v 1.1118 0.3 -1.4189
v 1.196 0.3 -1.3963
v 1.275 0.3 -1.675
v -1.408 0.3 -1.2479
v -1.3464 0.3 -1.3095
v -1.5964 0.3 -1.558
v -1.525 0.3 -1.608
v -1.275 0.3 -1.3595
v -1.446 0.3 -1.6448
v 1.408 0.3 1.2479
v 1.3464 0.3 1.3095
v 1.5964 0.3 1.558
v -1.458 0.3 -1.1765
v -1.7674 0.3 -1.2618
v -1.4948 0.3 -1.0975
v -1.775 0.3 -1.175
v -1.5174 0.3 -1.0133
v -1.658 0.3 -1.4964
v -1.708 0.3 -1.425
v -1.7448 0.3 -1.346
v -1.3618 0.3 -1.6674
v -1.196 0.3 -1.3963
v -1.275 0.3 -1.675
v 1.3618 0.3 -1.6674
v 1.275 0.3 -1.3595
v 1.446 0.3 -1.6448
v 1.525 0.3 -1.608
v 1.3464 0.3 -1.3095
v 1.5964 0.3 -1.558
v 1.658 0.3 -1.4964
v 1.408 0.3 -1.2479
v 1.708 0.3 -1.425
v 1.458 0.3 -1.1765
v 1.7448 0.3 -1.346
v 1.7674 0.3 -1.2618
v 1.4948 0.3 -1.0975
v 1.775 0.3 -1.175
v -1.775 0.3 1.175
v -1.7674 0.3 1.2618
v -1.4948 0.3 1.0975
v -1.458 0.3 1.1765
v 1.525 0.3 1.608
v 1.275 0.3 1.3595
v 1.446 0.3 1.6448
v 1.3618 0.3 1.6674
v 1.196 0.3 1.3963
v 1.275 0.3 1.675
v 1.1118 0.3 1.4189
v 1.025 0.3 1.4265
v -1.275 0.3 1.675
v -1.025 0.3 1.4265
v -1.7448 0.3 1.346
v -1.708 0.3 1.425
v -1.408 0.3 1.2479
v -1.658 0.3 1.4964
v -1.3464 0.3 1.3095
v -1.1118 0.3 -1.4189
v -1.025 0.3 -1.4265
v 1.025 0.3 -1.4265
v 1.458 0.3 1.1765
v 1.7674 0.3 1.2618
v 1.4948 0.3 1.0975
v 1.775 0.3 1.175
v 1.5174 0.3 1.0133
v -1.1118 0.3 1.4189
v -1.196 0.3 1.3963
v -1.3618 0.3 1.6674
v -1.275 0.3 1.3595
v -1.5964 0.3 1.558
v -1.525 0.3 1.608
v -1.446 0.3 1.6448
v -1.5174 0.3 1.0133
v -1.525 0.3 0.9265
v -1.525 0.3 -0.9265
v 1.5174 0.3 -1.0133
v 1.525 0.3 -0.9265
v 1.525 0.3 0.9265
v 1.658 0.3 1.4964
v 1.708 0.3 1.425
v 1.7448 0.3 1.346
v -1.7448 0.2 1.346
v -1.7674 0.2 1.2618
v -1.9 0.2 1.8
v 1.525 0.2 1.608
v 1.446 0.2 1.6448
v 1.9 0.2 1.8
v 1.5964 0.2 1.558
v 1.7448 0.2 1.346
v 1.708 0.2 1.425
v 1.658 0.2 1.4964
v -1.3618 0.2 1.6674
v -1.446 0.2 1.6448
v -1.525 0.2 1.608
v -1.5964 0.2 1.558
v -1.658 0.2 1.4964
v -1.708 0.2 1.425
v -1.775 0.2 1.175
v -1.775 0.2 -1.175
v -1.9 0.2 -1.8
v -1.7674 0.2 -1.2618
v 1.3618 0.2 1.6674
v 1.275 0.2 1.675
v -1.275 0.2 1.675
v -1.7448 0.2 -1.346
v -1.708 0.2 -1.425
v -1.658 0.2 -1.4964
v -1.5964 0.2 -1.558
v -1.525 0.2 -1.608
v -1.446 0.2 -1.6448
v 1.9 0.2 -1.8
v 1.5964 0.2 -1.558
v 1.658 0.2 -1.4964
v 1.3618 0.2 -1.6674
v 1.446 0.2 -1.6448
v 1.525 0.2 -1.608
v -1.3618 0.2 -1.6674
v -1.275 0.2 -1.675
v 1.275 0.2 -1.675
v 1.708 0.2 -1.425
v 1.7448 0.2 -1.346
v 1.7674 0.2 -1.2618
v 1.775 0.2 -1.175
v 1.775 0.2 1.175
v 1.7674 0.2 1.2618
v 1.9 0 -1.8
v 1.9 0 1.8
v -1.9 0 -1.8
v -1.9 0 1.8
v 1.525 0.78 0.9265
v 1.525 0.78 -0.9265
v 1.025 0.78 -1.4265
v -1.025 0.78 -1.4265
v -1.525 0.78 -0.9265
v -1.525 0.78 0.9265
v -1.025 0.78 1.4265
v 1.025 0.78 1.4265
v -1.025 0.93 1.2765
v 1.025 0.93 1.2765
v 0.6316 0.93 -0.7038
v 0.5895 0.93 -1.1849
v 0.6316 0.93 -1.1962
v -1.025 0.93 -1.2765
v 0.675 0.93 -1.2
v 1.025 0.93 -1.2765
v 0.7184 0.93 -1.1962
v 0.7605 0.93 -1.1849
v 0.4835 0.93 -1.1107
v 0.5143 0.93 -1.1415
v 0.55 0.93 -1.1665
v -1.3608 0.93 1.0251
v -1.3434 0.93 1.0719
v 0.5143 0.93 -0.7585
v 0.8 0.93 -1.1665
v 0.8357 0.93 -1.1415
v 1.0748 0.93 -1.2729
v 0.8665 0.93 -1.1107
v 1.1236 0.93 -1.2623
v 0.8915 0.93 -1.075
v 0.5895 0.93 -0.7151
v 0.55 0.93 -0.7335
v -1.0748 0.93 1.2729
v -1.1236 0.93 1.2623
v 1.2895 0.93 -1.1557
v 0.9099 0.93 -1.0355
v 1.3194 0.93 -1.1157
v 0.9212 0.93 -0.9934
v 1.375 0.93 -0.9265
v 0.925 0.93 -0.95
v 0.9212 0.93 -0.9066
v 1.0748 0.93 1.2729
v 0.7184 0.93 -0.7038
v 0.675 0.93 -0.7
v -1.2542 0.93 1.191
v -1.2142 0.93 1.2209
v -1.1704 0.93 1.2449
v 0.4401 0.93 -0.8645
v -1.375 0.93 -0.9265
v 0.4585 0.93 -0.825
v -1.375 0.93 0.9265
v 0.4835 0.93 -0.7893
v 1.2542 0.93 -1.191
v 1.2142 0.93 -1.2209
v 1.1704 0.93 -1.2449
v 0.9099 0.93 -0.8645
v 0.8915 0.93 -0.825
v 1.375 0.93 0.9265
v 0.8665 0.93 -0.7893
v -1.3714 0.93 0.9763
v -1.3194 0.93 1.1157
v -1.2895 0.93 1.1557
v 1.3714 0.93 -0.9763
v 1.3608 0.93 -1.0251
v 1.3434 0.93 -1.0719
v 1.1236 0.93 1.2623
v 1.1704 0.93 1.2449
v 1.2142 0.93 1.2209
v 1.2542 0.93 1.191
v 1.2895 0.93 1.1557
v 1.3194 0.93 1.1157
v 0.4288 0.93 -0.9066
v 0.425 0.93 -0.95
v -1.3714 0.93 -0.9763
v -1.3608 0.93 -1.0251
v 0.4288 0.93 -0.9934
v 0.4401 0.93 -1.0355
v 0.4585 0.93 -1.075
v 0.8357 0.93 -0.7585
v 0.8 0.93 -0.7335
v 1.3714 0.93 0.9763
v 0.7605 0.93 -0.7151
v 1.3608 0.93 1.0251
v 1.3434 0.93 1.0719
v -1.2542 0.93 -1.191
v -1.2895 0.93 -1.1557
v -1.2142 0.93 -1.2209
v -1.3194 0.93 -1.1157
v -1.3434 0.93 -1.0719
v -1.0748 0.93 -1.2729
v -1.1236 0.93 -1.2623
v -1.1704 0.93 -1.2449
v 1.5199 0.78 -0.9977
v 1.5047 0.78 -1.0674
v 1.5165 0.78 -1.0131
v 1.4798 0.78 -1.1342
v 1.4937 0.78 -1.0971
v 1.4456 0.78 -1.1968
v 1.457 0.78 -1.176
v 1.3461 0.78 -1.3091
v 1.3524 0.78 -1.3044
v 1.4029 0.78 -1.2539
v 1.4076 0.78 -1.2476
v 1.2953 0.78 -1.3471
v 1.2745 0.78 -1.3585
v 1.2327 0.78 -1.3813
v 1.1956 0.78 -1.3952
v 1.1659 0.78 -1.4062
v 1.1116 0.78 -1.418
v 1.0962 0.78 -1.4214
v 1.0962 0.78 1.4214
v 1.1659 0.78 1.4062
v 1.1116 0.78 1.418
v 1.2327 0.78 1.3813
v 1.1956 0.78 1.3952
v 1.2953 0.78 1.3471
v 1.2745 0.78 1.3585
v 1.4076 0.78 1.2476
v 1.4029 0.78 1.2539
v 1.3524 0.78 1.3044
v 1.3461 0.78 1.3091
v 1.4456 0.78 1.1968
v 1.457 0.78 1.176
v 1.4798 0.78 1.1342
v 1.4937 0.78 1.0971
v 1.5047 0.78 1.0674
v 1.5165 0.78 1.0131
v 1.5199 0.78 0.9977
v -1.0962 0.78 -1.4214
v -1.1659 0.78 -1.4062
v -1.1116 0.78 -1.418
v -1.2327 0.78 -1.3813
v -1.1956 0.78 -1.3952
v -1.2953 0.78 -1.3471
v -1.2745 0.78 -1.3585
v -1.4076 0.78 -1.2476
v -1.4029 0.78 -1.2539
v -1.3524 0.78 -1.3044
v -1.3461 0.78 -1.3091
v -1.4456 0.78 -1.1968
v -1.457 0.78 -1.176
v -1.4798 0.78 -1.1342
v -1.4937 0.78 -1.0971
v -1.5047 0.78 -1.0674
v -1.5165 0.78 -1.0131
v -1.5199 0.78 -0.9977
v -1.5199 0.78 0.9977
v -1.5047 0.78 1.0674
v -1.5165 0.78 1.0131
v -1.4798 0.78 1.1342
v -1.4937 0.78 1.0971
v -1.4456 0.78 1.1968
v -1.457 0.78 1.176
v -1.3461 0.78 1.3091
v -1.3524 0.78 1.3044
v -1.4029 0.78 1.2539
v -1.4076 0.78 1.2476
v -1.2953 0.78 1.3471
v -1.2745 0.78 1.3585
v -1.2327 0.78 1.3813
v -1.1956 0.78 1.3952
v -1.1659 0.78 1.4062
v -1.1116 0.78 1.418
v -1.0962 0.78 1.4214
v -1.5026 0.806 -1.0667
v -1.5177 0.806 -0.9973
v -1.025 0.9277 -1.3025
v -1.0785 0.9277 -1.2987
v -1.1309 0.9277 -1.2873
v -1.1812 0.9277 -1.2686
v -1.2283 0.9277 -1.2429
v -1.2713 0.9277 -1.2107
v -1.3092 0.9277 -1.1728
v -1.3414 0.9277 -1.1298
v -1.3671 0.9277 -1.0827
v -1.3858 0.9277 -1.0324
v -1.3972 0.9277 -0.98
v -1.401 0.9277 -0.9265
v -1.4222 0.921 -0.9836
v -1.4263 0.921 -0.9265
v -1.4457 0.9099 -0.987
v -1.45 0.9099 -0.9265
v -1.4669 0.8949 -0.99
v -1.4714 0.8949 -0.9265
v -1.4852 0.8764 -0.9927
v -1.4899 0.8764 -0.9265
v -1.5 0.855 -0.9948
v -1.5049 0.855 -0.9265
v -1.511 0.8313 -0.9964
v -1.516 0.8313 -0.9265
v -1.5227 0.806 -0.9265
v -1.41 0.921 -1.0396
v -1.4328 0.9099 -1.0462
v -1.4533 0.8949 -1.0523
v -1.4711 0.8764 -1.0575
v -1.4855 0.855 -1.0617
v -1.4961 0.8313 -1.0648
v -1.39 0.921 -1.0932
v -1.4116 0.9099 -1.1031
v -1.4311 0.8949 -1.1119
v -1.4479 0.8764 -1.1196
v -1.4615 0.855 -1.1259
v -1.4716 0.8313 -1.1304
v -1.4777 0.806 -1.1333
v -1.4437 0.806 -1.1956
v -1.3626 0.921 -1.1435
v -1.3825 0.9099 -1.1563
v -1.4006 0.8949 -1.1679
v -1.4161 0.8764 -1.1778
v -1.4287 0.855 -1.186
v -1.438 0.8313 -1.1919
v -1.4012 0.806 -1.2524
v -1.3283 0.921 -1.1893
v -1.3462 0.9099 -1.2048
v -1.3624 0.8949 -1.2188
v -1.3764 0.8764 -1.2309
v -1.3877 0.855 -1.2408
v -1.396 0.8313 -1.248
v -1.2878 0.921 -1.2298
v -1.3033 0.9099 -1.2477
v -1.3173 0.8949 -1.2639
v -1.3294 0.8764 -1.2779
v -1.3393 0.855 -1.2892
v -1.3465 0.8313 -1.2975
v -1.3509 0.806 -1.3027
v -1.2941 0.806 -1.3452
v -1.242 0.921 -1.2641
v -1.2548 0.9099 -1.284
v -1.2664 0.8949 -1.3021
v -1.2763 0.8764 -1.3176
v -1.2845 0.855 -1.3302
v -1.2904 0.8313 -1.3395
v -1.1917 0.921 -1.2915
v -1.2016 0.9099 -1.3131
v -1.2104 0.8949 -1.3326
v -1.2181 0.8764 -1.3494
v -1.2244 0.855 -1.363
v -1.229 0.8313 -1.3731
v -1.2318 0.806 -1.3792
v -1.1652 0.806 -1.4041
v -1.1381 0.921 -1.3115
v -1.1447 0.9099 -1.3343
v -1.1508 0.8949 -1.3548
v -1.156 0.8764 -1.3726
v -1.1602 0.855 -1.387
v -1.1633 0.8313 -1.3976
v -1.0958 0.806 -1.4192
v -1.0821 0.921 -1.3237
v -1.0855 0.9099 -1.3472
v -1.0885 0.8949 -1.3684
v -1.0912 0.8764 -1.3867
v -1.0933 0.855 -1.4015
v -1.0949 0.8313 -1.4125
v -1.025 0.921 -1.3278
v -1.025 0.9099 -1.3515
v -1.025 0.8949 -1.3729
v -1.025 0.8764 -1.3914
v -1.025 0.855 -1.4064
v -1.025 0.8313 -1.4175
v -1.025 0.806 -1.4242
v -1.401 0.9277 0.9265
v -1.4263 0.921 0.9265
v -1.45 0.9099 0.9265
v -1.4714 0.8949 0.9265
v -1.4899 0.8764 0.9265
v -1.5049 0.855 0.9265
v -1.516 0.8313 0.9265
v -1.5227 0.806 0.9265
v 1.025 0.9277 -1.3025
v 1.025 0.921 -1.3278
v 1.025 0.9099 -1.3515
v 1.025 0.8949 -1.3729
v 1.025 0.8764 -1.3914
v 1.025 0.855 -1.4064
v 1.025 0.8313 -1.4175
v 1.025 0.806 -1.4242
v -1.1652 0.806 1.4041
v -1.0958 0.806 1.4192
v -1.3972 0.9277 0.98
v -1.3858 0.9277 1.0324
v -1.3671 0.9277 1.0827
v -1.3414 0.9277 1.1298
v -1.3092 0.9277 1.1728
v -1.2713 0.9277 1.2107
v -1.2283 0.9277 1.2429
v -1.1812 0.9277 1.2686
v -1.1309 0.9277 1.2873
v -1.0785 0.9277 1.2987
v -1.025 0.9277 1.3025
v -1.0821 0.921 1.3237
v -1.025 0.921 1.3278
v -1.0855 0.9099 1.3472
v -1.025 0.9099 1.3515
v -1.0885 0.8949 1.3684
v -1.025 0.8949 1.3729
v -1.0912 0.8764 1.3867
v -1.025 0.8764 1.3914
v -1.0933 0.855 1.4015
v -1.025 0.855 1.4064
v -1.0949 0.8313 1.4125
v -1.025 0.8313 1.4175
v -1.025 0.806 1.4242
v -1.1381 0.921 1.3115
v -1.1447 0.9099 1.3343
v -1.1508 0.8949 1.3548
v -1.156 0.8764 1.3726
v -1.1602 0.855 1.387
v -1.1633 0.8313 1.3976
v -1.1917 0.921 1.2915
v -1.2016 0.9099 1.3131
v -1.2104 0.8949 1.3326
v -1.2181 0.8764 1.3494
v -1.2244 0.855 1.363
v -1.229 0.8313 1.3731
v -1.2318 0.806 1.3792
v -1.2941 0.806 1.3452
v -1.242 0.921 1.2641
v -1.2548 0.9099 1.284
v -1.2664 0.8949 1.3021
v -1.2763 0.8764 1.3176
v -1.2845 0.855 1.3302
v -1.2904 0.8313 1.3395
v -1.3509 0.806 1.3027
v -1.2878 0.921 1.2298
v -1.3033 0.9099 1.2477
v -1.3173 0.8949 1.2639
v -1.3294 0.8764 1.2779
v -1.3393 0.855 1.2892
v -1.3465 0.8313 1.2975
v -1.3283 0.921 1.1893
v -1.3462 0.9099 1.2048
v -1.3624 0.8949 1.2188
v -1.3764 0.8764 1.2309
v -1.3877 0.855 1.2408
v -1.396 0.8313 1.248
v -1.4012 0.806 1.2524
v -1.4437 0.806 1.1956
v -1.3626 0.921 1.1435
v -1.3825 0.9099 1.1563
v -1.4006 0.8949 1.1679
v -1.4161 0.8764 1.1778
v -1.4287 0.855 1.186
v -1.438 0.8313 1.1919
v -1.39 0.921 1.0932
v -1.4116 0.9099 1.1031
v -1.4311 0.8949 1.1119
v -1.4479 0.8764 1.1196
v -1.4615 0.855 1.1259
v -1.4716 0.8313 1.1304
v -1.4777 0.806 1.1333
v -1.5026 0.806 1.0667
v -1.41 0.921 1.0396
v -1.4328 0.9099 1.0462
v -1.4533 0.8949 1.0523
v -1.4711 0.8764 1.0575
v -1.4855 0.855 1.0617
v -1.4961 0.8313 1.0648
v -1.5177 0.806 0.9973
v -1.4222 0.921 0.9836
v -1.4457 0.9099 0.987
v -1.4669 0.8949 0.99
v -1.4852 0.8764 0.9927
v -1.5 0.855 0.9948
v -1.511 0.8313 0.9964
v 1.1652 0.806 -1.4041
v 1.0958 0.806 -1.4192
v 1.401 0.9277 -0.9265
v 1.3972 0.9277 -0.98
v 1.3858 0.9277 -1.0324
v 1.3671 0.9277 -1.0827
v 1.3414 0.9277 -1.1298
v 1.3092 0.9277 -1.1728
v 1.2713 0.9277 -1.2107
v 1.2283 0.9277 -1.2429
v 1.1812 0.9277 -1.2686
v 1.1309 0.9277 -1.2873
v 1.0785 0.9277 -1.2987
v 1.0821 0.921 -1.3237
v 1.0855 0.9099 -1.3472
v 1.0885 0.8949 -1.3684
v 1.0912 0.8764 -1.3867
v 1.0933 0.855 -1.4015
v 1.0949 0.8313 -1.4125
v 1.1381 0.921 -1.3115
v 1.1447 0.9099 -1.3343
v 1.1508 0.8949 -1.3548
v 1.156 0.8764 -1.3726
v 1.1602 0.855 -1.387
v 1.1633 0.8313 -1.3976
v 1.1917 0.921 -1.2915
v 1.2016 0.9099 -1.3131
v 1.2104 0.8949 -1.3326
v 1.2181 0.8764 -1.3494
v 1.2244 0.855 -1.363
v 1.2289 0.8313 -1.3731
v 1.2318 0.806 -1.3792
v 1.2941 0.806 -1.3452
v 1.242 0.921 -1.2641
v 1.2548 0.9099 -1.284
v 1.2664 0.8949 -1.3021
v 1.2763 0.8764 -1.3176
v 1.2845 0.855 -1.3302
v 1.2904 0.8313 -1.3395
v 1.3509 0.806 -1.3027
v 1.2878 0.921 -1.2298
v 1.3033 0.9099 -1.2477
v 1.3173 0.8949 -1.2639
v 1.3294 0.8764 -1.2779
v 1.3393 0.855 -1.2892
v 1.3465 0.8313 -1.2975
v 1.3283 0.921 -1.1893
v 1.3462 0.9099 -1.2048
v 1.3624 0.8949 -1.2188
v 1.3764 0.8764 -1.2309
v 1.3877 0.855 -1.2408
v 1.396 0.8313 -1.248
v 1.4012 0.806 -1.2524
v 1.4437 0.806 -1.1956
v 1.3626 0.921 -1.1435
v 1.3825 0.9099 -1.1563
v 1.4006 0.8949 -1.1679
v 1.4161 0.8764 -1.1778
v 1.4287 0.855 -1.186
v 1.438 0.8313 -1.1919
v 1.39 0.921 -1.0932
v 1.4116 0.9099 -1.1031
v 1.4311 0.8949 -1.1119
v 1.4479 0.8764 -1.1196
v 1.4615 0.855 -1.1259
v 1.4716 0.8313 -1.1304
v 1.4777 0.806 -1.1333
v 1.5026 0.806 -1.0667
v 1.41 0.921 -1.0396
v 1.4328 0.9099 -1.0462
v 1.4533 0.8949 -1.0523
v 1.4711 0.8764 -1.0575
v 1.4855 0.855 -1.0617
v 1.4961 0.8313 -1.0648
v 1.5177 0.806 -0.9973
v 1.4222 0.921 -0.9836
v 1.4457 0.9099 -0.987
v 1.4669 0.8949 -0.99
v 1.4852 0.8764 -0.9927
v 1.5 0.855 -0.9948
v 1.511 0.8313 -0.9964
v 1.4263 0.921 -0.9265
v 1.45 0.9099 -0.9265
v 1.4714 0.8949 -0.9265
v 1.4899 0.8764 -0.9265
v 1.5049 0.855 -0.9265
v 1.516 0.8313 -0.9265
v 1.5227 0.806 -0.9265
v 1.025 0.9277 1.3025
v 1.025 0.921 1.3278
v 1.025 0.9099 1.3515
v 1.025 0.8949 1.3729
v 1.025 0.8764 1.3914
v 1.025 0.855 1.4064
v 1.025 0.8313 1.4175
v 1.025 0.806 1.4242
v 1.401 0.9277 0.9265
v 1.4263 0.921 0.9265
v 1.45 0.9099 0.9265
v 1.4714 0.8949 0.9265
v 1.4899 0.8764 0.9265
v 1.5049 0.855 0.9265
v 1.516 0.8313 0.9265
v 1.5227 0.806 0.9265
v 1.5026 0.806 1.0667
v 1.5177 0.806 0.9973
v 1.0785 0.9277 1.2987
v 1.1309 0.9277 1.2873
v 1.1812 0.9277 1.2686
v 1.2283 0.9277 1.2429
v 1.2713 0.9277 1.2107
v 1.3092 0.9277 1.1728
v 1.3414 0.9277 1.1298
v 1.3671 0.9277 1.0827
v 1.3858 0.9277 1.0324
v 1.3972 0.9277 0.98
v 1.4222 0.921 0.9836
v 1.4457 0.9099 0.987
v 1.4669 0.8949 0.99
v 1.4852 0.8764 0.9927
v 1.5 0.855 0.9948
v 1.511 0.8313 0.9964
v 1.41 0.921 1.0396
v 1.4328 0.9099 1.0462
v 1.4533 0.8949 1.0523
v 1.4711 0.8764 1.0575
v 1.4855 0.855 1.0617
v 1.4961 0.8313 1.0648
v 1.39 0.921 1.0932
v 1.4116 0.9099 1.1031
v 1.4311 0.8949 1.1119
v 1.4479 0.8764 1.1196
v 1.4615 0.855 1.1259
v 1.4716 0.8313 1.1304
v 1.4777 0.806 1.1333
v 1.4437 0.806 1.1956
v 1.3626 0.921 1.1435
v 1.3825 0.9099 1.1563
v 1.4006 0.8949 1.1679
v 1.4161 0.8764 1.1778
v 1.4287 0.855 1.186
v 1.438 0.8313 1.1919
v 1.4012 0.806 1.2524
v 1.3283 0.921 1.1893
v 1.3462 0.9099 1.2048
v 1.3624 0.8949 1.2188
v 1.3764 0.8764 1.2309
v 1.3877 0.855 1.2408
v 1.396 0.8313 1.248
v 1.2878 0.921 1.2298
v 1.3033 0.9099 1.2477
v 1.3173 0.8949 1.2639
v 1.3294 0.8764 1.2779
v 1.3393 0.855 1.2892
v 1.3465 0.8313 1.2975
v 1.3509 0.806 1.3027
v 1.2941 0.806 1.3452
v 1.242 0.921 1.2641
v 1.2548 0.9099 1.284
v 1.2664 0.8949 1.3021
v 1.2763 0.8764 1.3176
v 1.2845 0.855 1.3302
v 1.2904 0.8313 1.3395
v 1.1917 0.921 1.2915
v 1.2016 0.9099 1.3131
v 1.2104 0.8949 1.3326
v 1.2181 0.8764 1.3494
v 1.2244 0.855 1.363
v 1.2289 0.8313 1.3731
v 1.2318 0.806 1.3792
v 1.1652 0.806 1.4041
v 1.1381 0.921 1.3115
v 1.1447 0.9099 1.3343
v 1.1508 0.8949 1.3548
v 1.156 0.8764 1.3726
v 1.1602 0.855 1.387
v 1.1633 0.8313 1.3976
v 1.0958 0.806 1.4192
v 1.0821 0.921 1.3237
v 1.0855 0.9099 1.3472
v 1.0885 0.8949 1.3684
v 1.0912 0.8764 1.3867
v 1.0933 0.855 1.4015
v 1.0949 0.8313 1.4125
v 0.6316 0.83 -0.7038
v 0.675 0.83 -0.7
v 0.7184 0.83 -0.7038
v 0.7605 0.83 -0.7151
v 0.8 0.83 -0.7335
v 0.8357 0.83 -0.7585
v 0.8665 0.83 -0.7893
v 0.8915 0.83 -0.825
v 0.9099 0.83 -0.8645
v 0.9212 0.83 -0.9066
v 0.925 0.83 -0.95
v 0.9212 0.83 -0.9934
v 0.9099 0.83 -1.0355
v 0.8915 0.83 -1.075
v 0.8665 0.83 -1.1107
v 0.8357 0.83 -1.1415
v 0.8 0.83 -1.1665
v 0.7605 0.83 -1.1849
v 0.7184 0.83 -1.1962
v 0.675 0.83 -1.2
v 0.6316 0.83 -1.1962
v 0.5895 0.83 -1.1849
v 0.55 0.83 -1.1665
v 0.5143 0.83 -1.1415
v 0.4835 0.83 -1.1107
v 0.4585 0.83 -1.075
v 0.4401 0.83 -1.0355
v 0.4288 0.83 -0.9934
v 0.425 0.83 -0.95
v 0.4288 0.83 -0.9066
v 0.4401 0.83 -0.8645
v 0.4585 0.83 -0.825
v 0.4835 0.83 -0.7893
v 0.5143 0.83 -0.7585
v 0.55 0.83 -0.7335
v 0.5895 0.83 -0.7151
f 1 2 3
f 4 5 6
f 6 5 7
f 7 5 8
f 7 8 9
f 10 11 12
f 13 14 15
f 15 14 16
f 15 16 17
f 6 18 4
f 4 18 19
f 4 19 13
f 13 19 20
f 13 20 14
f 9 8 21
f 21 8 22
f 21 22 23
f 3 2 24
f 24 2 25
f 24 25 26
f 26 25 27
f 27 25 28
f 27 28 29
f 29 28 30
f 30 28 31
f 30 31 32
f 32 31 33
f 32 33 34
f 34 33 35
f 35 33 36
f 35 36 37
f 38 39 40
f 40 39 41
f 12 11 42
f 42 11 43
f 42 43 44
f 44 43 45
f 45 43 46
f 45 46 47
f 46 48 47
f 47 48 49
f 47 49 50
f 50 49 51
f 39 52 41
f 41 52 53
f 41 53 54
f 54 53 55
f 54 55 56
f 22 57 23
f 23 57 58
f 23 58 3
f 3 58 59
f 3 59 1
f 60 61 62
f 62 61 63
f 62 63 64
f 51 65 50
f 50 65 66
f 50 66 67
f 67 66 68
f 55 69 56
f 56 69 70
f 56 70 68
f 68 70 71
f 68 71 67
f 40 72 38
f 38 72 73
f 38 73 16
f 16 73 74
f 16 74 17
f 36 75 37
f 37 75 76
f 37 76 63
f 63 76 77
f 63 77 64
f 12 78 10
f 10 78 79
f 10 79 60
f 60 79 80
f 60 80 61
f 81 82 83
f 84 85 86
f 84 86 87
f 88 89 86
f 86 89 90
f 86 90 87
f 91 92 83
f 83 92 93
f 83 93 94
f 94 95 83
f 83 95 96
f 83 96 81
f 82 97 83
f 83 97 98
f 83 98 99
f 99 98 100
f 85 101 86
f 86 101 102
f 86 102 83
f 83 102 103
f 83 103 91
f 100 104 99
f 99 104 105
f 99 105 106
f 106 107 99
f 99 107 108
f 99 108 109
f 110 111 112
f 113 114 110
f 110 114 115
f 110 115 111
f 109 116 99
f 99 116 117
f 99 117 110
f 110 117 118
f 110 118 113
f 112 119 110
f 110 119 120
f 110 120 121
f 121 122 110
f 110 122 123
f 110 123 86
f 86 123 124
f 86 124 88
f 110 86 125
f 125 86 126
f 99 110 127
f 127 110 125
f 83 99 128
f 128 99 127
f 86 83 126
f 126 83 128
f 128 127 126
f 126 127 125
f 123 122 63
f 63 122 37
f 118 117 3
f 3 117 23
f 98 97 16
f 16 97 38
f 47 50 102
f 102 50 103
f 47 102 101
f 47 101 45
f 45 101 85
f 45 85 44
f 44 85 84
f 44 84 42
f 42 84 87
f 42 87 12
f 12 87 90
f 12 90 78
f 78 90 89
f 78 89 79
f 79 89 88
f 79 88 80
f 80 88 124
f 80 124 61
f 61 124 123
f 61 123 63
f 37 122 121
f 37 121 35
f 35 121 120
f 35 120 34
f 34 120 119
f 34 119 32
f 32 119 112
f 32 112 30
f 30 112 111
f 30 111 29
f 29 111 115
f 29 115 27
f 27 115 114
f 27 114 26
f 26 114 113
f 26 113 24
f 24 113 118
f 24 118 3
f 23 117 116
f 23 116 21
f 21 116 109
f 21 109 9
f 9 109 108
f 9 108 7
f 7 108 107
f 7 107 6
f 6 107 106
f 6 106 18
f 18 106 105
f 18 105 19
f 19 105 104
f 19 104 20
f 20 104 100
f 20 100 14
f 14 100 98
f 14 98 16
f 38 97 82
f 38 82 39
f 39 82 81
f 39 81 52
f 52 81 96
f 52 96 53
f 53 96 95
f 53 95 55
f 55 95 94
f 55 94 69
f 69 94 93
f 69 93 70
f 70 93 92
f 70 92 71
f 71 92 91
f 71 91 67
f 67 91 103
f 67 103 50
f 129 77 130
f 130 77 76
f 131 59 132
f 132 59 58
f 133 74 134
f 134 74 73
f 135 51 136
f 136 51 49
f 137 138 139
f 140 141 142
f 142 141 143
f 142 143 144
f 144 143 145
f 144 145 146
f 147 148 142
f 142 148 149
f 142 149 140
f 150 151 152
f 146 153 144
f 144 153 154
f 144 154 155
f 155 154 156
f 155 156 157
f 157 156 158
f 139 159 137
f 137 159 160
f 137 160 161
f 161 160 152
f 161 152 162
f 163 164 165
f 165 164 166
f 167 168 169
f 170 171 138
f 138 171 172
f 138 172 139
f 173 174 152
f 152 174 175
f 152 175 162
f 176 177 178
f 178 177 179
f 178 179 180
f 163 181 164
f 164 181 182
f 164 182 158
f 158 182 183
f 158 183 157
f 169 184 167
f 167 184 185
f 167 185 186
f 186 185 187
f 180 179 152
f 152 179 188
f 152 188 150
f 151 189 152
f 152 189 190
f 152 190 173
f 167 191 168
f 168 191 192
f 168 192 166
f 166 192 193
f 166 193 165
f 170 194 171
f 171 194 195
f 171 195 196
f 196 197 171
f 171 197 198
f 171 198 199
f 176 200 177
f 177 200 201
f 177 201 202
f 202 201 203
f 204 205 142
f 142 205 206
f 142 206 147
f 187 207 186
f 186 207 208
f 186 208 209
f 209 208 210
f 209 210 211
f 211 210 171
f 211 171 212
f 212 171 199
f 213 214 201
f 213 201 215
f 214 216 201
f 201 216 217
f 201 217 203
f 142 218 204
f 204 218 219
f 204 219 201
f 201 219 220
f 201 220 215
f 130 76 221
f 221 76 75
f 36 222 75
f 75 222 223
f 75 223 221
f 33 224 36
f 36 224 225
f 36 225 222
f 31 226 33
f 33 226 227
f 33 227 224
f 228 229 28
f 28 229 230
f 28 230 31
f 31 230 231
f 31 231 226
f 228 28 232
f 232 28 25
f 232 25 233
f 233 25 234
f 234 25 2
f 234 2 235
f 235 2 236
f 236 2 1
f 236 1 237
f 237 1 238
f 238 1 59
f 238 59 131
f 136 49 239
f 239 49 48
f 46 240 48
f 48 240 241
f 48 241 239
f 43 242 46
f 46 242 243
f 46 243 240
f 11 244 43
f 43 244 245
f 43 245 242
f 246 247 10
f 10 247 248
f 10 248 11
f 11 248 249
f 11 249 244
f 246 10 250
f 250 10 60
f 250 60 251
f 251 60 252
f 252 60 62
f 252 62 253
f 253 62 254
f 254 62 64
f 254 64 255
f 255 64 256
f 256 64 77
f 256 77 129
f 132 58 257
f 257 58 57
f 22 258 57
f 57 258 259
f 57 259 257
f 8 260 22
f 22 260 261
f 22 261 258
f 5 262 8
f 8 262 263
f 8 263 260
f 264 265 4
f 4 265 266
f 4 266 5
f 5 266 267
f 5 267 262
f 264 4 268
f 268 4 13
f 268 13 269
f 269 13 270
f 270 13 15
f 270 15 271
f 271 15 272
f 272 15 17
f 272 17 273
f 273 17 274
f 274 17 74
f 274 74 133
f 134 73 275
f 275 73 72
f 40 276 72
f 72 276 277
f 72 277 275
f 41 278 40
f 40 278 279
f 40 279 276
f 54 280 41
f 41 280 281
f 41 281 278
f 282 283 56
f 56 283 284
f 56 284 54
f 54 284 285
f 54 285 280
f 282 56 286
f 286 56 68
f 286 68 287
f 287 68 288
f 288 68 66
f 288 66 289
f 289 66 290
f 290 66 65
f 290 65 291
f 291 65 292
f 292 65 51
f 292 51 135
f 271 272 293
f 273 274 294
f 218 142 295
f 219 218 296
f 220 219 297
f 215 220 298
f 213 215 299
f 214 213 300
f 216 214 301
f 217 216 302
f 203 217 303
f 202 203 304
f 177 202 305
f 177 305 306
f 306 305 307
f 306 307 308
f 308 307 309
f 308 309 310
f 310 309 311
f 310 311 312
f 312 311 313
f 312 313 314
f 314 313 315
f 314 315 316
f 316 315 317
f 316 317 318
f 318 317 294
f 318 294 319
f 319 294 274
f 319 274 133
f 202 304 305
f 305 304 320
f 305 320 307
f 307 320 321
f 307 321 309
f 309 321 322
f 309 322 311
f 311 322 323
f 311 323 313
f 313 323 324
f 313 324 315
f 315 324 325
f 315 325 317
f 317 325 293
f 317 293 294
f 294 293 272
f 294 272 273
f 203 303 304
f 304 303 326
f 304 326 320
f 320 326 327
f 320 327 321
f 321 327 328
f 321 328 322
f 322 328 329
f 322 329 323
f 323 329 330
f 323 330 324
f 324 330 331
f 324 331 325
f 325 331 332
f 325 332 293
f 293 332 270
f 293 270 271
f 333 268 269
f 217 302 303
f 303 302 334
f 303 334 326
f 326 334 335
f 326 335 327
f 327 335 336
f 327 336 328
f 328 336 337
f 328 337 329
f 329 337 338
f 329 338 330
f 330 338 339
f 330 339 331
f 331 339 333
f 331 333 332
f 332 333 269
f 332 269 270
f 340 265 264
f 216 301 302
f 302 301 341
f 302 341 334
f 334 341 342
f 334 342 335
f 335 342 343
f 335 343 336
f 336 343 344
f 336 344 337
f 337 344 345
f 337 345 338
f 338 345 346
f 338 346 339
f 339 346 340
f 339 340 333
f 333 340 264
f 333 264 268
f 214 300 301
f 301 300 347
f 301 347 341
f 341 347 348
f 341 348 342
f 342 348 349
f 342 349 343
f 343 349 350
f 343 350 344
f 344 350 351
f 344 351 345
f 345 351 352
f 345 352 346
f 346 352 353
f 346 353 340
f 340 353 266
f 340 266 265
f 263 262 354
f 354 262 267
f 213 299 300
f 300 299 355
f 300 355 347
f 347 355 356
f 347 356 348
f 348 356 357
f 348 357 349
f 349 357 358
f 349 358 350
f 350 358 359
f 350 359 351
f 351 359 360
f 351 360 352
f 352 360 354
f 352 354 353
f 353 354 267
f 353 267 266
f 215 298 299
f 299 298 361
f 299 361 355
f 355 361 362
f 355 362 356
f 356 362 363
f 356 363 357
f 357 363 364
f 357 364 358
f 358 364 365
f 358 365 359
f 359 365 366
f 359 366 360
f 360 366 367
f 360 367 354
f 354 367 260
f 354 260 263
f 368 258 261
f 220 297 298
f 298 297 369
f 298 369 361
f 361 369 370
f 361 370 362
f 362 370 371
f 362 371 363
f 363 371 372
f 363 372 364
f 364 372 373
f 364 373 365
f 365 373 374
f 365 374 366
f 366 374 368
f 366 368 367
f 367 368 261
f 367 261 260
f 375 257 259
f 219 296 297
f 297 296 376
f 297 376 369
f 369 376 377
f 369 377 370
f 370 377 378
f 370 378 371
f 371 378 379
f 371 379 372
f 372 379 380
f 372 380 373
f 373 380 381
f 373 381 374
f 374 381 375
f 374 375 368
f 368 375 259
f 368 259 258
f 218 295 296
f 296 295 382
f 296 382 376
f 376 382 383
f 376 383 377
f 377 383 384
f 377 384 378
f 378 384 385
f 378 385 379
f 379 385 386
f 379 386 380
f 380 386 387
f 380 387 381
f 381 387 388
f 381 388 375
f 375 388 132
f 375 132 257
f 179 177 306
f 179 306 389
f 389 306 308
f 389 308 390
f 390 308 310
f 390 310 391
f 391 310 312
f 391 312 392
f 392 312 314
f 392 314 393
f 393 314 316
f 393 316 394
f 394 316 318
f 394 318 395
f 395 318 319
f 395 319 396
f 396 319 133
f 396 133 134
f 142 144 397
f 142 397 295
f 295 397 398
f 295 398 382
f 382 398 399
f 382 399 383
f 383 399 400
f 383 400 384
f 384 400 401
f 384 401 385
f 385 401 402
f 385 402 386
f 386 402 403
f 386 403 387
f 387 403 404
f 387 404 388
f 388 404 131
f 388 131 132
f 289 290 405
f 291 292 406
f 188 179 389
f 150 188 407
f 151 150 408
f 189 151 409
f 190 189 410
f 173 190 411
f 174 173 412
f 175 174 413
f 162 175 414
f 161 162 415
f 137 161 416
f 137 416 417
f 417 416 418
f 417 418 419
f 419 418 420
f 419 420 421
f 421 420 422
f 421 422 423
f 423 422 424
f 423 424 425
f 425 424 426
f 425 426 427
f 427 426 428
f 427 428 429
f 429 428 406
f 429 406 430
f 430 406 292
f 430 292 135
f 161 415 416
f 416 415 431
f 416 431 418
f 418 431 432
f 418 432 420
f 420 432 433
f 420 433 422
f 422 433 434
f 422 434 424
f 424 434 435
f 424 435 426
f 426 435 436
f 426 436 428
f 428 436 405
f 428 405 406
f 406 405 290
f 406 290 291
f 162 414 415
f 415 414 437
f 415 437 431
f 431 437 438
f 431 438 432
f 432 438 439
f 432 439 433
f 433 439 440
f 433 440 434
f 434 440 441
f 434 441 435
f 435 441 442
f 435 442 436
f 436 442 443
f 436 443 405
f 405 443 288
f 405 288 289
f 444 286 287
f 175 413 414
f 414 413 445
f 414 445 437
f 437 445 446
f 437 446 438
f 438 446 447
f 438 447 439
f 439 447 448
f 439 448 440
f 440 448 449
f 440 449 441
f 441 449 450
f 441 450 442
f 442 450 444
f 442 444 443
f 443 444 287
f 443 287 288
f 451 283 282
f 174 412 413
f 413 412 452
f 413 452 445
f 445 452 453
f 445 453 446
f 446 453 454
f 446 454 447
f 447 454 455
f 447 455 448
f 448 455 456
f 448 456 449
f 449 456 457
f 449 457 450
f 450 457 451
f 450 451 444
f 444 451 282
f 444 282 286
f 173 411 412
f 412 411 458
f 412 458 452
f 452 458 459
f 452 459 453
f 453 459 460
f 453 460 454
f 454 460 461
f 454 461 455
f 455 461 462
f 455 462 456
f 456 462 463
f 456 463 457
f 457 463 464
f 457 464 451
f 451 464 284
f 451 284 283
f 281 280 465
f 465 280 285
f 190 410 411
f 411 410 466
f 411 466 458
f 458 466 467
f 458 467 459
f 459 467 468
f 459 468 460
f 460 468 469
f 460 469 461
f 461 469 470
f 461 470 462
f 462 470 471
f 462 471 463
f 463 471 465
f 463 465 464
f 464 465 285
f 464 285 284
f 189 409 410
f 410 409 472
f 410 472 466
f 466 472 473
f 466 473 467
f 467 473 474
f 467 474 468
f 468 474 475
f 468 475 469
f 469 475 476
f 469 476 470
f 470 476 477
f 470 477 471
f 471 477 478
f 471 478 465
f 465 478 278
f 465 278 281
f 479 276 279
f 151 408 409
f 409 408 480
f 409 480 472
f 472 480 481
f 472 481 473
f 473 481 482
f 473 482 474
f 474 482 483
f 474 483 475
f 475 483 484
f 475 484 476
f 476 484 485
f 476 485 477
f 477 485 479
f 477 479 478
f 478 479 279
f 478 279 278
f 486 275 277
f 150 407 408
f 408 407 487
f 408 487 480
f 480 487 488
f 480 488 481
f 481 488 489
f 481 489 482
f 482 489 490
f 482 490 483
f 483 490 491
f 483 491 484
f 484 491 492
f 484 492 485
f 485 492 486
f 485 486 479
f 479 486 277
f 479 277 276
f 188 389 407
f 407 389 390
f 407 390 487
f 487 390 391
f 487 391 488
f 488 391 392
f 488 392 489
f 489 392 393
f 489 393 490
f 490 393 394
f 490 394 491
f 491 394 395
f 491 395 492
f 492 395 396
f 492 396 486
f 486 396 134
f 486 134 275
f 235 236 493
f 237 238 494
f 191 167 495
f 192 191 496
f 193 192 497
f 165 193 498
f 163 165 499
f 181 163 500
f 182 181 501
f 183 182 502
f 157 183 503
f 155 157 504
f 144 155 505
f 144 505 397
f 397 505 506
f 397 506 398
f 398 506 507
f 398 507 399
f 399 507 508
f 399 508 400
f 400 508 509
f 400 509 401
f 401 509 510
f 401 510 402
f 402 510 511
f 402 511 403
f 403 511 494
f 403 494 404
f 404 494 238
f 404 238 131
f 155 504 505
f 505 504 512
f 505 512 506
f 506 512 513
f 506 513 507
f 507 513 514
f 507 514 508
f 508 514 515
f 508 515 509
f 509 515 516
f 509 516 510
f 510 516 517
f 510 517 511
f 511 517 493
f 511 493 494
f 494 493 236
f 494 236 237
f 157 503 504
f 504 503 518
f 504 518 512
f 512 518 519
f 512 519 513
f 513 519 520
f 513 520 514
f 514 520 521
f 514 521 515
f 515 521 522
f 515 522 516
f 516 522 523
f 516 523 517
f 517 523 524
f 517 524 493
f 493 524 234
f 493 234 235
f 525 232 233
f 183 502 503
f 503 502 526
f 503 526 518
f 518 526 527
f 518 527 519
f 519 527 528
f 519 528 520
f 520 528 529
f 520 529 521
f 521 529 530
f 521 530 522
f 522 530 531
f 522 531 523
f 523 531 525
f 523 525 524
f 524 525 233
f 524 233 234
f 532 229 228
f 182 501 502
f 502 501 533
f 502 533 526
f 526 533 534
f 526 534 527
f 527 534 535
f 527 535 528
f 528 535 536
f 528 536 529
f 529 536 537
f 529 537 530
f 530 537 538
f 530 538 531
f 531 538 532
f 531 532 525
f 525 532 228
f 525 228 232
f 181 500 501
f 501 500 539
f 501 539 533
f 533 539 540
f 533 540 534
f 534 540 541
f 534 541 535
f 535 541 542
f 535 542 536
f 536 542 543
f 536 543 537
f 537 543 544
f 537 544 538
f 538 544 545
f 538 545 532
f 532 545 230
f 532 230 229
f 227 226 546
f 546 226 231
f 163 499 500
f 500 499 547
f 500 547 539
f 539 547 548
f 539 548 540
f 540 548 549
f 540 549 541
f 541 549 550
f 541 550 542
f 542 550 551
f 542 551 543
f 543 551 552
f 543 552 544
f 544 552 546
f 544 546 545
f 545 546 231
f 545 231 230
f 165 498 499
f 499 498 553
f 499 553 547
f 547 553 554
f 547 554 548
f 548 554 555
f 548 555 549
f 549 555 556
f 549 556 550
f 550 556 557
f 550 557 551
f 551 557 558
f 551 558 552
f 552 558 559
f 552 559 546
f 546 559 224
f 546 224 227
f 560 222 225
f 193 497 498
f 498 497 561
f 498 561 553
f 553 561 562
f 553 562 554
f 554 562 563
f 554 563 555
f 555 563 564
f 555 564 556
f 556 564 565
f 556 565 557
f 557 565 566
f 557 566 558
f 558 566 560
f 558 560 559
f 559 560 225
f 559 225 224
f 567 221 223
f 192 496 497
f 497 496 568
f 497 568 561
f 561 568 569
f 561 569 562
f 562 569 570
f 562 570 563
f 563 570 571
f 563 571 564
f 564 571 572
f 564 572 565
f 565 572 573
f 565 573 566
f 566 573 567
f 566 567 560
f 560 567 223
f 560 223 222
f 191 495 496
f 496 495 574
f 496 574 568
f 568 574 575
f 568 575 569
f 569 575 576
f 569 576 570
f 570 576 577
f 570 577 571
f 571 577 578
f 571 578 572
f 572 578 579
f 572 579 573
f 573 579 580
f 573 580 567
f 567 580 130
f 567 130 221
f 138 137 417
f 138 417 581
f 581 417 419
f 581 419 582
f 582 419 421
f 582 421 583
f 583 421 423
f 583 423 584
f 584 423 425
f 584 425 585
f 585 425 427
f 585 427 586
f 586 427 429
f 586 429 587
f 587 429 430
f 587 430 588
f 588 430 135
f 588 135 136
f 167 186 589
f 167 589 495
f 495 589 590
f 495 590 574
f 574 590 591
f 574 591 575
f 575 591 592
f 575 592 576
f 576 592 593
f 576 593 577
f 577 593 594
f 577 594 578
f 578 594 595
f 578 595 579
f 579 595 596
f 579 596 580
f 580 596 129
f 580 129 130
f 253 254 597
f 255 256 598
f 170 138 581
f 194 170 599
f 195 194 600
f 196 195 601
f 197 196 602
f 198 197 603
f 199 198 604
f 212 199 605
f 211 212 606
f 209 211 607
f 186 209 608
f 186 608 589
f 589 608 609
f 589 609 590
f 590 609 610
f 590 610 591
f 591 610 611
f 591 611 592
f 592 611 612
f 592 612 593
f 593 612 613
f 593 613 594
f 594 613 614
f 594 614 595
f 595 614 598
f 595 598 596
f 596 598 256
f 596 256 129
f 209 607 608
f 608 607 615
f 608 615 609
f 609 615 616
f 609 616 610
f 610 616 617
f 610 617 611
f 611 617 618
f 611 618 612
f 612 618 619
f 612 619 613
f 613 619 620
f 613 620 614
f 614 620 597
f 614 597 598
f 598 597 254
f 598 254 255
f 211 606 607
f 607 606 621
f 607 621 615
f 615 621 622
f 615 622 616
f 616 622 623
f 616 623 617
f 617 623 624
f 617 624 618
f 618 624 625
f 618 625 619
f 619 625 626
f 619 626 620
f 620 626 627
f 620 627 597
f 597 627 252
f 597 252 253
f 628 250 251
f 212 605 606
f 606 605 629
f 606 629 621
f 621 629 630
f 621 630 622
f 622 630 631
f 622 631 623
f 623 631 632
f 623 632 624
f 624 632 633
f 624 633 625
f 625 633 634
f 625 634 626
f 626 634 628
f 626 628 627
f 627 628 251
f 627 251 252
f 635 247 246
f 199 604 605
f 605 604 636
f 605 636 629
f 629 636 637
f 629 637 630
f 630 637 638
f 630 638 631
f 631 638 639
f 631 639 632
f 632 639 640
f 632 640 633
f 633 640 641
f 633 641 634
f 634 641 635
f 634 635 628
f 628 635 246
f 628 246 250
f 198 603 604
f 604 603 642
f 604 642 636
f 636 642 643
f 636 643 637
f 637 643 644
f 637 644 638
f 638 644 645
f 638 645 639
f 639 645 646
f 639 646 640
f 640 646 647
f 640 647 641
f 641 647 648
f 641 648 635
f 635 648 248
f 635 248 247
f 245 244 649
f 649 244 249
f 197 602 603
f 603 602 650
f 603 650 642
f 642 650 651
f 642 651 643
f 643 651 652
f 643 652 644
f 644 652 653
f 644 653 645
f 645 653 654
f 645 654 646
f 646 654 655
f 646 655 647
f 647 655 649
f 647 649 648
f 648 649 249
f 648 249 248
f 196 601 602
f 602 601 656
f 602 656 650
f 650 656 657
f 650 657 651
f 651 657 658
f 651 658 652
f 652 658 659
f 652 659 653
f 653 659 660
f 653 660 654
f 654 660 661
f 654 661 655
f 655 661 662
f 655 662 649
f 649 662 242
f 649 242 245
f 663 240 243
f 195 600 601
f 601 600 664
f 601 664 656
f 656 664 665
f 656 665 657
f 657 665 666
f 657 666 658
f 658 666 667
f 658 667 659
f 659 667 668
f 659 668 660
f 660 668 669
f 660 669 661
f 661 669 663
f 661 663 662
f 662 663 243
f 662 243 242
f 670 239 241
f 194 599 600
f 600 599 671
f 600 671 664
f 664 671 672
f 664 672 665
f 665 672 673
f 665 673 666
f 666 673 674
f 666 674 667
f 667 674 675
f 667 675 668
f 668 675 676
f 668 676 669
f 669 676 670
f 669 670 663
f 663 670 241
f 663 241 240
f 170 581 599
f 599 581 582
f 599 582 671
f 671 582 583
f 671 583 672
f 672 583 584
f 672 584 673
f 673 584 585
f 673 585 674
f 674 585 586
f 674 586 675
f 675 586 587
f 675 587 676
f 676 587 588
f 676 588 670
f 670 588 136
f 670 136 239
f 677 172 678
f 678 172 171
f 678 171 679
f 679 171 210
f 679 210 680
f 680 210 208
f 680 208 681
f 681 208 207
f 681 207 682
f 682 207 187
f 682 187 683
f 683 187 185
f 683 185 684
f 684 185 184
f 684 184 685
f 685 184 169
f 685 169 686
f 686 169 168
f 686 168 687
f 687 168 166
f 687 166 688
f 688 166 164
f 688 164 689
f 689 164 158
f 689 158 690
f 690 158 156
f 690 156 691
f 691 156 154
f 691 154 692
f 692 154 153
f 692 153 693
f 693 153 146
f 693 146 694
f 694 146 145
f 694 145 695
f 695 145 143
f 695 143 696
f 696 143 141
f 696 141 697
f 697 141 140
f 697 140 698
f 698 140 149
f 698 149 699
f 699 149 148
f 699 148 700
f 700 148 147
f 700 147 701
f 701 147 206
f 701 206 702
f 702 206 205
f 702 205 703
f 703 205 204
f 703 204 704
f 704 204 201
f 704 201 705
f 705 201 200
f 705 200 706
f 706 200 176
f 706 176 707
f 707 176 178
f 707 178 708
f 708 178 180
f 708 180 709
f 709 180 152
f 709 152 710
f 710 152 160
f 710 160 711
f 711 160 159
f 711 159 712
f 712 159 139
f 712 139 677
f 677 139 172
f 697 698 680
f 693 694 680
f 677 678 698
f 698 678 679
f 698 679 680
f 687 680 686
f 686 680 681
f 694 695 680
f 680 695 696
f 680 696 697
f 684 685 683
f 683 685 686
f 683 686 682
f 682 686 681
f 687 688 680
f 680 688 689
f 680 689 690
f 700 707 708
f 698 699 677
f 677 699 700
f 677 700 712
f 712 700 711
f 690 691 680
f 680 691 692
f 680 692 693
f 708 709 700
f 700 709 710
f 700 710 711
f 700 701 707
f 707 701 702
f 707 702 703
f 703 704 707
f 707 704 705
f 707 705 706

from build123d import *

# Parameters (mm, degrees)
SKETCH1_W           = 3.8
SKETCH1_H           = 3.6
BOSS_EXTRUDE1_DEPTH = 0.2
SKETCH3_W           = 3.55
SKETCH3_H           = 3.35
BOSS_EXTRUDE2_DEPTH = 0.1
FILLET1_R           = 0.5
SKETCH4_W           = 3.05
SKETCH4_H           = 2.853
BOSS_EXTRUDE3_DEPTH = 0.63
FILLET2_R           = 0.5
FILLET5_R           = 0.15
SKETCH5_R           = 0.25
CUT_EXTRUDE1_DEPTH  = 0.1


with BuildPart() as part:
    # Sketch1 → Boss-Extrude1 (new body)
    with BuildSketch(Plane(origin=(0, 0, 0), x_dir=(1, 0, 0), z_dir=(0, 1, 0))):
        Rectangle(SKETCH1_W, SKETCH1_H)
    extrude(amount=BOSS_EXTRUDE1_DEPTH)

    # Sketch3 → Boss-Extrude2 (add)
    with BuildSketch(Plane(origin=(0, 0.2, 0), x_dir=(1, 0, 0), z_dir=(0, 1, 0))):
        Rectangle(SKETCH3_W, SKETCH3_H)
    extrude(amount=BOSS_EXTRUDE2_DEPTH)

    # Fillet1
    fillet1_edges = [part.edges().sort_by_distance(p)[0] for p in [
        (1.775, 0.25, 1.675),
        (1.775, 0.25, -1.675),
        (-1.775, 0.25, -1.675),
        (-1.775, 0.25, 1.675),
    ]]
    fillet(fillet1_edges, radius=FILLET1_R)

    # Sketch4 → Boss-Extrude3 (add)
    with BuildSketch(Plane(origin=(0, 0.3, 0), x_dir=(1, 0, 0), z_dir=(0, 1, 0))):
        Rectangle(SKETCH4_W, SKETCH4_H)
    extrude(amount=BOSS_EXTRUDE3_DEPTH)

    # Fillet2
    fillet2_edges = [part.edges().sort_by_distance(p)[0] for p in [
        (1.525, 0.615, 1.4265),
        (1.525, 0.615, -1.4265),
        (-1.525, 0.615, -1.4265),
        (-1.525, 0.615, 1.4265),
    ]]
    fillet(fillet2_edges, radius=FILLET2_R)

    # Fillet5
    fillet5_edges = [part.edges().sort_by_distance(p)[0] for p in [
        (0, 0.93, -1.4265),
        (1.525, 0.93, 0),
        (-1.525, 0.93, 0),
        (0, 0.93, 1.4265),
        (-1.378553391, 0.93, 1.280053391),
        (-1.378553391, 0.93, -1.280053391),
        (1.378553391, 0.93, 1.280053391),
        (1.378553391, 0.93, -1.280053391),
    ]]
    fillet(fillet5_edges, radius=FILLET5_R)

    # Sketch5 → Cut-Extrude1 (cut)
    with BuildSketch(Plane(origin=(0, 0.93, 0), x_dir=(1, 0, 0), z_dir=(0, 1, 0))):
        with Locations((0.675, 0.95)):
            Circle(SKETCH5_R)
    extrude(amount=-CUT_EXTRUDE1_DEPTH, mode=Mode.SUBTRACT)


solid = part.part
